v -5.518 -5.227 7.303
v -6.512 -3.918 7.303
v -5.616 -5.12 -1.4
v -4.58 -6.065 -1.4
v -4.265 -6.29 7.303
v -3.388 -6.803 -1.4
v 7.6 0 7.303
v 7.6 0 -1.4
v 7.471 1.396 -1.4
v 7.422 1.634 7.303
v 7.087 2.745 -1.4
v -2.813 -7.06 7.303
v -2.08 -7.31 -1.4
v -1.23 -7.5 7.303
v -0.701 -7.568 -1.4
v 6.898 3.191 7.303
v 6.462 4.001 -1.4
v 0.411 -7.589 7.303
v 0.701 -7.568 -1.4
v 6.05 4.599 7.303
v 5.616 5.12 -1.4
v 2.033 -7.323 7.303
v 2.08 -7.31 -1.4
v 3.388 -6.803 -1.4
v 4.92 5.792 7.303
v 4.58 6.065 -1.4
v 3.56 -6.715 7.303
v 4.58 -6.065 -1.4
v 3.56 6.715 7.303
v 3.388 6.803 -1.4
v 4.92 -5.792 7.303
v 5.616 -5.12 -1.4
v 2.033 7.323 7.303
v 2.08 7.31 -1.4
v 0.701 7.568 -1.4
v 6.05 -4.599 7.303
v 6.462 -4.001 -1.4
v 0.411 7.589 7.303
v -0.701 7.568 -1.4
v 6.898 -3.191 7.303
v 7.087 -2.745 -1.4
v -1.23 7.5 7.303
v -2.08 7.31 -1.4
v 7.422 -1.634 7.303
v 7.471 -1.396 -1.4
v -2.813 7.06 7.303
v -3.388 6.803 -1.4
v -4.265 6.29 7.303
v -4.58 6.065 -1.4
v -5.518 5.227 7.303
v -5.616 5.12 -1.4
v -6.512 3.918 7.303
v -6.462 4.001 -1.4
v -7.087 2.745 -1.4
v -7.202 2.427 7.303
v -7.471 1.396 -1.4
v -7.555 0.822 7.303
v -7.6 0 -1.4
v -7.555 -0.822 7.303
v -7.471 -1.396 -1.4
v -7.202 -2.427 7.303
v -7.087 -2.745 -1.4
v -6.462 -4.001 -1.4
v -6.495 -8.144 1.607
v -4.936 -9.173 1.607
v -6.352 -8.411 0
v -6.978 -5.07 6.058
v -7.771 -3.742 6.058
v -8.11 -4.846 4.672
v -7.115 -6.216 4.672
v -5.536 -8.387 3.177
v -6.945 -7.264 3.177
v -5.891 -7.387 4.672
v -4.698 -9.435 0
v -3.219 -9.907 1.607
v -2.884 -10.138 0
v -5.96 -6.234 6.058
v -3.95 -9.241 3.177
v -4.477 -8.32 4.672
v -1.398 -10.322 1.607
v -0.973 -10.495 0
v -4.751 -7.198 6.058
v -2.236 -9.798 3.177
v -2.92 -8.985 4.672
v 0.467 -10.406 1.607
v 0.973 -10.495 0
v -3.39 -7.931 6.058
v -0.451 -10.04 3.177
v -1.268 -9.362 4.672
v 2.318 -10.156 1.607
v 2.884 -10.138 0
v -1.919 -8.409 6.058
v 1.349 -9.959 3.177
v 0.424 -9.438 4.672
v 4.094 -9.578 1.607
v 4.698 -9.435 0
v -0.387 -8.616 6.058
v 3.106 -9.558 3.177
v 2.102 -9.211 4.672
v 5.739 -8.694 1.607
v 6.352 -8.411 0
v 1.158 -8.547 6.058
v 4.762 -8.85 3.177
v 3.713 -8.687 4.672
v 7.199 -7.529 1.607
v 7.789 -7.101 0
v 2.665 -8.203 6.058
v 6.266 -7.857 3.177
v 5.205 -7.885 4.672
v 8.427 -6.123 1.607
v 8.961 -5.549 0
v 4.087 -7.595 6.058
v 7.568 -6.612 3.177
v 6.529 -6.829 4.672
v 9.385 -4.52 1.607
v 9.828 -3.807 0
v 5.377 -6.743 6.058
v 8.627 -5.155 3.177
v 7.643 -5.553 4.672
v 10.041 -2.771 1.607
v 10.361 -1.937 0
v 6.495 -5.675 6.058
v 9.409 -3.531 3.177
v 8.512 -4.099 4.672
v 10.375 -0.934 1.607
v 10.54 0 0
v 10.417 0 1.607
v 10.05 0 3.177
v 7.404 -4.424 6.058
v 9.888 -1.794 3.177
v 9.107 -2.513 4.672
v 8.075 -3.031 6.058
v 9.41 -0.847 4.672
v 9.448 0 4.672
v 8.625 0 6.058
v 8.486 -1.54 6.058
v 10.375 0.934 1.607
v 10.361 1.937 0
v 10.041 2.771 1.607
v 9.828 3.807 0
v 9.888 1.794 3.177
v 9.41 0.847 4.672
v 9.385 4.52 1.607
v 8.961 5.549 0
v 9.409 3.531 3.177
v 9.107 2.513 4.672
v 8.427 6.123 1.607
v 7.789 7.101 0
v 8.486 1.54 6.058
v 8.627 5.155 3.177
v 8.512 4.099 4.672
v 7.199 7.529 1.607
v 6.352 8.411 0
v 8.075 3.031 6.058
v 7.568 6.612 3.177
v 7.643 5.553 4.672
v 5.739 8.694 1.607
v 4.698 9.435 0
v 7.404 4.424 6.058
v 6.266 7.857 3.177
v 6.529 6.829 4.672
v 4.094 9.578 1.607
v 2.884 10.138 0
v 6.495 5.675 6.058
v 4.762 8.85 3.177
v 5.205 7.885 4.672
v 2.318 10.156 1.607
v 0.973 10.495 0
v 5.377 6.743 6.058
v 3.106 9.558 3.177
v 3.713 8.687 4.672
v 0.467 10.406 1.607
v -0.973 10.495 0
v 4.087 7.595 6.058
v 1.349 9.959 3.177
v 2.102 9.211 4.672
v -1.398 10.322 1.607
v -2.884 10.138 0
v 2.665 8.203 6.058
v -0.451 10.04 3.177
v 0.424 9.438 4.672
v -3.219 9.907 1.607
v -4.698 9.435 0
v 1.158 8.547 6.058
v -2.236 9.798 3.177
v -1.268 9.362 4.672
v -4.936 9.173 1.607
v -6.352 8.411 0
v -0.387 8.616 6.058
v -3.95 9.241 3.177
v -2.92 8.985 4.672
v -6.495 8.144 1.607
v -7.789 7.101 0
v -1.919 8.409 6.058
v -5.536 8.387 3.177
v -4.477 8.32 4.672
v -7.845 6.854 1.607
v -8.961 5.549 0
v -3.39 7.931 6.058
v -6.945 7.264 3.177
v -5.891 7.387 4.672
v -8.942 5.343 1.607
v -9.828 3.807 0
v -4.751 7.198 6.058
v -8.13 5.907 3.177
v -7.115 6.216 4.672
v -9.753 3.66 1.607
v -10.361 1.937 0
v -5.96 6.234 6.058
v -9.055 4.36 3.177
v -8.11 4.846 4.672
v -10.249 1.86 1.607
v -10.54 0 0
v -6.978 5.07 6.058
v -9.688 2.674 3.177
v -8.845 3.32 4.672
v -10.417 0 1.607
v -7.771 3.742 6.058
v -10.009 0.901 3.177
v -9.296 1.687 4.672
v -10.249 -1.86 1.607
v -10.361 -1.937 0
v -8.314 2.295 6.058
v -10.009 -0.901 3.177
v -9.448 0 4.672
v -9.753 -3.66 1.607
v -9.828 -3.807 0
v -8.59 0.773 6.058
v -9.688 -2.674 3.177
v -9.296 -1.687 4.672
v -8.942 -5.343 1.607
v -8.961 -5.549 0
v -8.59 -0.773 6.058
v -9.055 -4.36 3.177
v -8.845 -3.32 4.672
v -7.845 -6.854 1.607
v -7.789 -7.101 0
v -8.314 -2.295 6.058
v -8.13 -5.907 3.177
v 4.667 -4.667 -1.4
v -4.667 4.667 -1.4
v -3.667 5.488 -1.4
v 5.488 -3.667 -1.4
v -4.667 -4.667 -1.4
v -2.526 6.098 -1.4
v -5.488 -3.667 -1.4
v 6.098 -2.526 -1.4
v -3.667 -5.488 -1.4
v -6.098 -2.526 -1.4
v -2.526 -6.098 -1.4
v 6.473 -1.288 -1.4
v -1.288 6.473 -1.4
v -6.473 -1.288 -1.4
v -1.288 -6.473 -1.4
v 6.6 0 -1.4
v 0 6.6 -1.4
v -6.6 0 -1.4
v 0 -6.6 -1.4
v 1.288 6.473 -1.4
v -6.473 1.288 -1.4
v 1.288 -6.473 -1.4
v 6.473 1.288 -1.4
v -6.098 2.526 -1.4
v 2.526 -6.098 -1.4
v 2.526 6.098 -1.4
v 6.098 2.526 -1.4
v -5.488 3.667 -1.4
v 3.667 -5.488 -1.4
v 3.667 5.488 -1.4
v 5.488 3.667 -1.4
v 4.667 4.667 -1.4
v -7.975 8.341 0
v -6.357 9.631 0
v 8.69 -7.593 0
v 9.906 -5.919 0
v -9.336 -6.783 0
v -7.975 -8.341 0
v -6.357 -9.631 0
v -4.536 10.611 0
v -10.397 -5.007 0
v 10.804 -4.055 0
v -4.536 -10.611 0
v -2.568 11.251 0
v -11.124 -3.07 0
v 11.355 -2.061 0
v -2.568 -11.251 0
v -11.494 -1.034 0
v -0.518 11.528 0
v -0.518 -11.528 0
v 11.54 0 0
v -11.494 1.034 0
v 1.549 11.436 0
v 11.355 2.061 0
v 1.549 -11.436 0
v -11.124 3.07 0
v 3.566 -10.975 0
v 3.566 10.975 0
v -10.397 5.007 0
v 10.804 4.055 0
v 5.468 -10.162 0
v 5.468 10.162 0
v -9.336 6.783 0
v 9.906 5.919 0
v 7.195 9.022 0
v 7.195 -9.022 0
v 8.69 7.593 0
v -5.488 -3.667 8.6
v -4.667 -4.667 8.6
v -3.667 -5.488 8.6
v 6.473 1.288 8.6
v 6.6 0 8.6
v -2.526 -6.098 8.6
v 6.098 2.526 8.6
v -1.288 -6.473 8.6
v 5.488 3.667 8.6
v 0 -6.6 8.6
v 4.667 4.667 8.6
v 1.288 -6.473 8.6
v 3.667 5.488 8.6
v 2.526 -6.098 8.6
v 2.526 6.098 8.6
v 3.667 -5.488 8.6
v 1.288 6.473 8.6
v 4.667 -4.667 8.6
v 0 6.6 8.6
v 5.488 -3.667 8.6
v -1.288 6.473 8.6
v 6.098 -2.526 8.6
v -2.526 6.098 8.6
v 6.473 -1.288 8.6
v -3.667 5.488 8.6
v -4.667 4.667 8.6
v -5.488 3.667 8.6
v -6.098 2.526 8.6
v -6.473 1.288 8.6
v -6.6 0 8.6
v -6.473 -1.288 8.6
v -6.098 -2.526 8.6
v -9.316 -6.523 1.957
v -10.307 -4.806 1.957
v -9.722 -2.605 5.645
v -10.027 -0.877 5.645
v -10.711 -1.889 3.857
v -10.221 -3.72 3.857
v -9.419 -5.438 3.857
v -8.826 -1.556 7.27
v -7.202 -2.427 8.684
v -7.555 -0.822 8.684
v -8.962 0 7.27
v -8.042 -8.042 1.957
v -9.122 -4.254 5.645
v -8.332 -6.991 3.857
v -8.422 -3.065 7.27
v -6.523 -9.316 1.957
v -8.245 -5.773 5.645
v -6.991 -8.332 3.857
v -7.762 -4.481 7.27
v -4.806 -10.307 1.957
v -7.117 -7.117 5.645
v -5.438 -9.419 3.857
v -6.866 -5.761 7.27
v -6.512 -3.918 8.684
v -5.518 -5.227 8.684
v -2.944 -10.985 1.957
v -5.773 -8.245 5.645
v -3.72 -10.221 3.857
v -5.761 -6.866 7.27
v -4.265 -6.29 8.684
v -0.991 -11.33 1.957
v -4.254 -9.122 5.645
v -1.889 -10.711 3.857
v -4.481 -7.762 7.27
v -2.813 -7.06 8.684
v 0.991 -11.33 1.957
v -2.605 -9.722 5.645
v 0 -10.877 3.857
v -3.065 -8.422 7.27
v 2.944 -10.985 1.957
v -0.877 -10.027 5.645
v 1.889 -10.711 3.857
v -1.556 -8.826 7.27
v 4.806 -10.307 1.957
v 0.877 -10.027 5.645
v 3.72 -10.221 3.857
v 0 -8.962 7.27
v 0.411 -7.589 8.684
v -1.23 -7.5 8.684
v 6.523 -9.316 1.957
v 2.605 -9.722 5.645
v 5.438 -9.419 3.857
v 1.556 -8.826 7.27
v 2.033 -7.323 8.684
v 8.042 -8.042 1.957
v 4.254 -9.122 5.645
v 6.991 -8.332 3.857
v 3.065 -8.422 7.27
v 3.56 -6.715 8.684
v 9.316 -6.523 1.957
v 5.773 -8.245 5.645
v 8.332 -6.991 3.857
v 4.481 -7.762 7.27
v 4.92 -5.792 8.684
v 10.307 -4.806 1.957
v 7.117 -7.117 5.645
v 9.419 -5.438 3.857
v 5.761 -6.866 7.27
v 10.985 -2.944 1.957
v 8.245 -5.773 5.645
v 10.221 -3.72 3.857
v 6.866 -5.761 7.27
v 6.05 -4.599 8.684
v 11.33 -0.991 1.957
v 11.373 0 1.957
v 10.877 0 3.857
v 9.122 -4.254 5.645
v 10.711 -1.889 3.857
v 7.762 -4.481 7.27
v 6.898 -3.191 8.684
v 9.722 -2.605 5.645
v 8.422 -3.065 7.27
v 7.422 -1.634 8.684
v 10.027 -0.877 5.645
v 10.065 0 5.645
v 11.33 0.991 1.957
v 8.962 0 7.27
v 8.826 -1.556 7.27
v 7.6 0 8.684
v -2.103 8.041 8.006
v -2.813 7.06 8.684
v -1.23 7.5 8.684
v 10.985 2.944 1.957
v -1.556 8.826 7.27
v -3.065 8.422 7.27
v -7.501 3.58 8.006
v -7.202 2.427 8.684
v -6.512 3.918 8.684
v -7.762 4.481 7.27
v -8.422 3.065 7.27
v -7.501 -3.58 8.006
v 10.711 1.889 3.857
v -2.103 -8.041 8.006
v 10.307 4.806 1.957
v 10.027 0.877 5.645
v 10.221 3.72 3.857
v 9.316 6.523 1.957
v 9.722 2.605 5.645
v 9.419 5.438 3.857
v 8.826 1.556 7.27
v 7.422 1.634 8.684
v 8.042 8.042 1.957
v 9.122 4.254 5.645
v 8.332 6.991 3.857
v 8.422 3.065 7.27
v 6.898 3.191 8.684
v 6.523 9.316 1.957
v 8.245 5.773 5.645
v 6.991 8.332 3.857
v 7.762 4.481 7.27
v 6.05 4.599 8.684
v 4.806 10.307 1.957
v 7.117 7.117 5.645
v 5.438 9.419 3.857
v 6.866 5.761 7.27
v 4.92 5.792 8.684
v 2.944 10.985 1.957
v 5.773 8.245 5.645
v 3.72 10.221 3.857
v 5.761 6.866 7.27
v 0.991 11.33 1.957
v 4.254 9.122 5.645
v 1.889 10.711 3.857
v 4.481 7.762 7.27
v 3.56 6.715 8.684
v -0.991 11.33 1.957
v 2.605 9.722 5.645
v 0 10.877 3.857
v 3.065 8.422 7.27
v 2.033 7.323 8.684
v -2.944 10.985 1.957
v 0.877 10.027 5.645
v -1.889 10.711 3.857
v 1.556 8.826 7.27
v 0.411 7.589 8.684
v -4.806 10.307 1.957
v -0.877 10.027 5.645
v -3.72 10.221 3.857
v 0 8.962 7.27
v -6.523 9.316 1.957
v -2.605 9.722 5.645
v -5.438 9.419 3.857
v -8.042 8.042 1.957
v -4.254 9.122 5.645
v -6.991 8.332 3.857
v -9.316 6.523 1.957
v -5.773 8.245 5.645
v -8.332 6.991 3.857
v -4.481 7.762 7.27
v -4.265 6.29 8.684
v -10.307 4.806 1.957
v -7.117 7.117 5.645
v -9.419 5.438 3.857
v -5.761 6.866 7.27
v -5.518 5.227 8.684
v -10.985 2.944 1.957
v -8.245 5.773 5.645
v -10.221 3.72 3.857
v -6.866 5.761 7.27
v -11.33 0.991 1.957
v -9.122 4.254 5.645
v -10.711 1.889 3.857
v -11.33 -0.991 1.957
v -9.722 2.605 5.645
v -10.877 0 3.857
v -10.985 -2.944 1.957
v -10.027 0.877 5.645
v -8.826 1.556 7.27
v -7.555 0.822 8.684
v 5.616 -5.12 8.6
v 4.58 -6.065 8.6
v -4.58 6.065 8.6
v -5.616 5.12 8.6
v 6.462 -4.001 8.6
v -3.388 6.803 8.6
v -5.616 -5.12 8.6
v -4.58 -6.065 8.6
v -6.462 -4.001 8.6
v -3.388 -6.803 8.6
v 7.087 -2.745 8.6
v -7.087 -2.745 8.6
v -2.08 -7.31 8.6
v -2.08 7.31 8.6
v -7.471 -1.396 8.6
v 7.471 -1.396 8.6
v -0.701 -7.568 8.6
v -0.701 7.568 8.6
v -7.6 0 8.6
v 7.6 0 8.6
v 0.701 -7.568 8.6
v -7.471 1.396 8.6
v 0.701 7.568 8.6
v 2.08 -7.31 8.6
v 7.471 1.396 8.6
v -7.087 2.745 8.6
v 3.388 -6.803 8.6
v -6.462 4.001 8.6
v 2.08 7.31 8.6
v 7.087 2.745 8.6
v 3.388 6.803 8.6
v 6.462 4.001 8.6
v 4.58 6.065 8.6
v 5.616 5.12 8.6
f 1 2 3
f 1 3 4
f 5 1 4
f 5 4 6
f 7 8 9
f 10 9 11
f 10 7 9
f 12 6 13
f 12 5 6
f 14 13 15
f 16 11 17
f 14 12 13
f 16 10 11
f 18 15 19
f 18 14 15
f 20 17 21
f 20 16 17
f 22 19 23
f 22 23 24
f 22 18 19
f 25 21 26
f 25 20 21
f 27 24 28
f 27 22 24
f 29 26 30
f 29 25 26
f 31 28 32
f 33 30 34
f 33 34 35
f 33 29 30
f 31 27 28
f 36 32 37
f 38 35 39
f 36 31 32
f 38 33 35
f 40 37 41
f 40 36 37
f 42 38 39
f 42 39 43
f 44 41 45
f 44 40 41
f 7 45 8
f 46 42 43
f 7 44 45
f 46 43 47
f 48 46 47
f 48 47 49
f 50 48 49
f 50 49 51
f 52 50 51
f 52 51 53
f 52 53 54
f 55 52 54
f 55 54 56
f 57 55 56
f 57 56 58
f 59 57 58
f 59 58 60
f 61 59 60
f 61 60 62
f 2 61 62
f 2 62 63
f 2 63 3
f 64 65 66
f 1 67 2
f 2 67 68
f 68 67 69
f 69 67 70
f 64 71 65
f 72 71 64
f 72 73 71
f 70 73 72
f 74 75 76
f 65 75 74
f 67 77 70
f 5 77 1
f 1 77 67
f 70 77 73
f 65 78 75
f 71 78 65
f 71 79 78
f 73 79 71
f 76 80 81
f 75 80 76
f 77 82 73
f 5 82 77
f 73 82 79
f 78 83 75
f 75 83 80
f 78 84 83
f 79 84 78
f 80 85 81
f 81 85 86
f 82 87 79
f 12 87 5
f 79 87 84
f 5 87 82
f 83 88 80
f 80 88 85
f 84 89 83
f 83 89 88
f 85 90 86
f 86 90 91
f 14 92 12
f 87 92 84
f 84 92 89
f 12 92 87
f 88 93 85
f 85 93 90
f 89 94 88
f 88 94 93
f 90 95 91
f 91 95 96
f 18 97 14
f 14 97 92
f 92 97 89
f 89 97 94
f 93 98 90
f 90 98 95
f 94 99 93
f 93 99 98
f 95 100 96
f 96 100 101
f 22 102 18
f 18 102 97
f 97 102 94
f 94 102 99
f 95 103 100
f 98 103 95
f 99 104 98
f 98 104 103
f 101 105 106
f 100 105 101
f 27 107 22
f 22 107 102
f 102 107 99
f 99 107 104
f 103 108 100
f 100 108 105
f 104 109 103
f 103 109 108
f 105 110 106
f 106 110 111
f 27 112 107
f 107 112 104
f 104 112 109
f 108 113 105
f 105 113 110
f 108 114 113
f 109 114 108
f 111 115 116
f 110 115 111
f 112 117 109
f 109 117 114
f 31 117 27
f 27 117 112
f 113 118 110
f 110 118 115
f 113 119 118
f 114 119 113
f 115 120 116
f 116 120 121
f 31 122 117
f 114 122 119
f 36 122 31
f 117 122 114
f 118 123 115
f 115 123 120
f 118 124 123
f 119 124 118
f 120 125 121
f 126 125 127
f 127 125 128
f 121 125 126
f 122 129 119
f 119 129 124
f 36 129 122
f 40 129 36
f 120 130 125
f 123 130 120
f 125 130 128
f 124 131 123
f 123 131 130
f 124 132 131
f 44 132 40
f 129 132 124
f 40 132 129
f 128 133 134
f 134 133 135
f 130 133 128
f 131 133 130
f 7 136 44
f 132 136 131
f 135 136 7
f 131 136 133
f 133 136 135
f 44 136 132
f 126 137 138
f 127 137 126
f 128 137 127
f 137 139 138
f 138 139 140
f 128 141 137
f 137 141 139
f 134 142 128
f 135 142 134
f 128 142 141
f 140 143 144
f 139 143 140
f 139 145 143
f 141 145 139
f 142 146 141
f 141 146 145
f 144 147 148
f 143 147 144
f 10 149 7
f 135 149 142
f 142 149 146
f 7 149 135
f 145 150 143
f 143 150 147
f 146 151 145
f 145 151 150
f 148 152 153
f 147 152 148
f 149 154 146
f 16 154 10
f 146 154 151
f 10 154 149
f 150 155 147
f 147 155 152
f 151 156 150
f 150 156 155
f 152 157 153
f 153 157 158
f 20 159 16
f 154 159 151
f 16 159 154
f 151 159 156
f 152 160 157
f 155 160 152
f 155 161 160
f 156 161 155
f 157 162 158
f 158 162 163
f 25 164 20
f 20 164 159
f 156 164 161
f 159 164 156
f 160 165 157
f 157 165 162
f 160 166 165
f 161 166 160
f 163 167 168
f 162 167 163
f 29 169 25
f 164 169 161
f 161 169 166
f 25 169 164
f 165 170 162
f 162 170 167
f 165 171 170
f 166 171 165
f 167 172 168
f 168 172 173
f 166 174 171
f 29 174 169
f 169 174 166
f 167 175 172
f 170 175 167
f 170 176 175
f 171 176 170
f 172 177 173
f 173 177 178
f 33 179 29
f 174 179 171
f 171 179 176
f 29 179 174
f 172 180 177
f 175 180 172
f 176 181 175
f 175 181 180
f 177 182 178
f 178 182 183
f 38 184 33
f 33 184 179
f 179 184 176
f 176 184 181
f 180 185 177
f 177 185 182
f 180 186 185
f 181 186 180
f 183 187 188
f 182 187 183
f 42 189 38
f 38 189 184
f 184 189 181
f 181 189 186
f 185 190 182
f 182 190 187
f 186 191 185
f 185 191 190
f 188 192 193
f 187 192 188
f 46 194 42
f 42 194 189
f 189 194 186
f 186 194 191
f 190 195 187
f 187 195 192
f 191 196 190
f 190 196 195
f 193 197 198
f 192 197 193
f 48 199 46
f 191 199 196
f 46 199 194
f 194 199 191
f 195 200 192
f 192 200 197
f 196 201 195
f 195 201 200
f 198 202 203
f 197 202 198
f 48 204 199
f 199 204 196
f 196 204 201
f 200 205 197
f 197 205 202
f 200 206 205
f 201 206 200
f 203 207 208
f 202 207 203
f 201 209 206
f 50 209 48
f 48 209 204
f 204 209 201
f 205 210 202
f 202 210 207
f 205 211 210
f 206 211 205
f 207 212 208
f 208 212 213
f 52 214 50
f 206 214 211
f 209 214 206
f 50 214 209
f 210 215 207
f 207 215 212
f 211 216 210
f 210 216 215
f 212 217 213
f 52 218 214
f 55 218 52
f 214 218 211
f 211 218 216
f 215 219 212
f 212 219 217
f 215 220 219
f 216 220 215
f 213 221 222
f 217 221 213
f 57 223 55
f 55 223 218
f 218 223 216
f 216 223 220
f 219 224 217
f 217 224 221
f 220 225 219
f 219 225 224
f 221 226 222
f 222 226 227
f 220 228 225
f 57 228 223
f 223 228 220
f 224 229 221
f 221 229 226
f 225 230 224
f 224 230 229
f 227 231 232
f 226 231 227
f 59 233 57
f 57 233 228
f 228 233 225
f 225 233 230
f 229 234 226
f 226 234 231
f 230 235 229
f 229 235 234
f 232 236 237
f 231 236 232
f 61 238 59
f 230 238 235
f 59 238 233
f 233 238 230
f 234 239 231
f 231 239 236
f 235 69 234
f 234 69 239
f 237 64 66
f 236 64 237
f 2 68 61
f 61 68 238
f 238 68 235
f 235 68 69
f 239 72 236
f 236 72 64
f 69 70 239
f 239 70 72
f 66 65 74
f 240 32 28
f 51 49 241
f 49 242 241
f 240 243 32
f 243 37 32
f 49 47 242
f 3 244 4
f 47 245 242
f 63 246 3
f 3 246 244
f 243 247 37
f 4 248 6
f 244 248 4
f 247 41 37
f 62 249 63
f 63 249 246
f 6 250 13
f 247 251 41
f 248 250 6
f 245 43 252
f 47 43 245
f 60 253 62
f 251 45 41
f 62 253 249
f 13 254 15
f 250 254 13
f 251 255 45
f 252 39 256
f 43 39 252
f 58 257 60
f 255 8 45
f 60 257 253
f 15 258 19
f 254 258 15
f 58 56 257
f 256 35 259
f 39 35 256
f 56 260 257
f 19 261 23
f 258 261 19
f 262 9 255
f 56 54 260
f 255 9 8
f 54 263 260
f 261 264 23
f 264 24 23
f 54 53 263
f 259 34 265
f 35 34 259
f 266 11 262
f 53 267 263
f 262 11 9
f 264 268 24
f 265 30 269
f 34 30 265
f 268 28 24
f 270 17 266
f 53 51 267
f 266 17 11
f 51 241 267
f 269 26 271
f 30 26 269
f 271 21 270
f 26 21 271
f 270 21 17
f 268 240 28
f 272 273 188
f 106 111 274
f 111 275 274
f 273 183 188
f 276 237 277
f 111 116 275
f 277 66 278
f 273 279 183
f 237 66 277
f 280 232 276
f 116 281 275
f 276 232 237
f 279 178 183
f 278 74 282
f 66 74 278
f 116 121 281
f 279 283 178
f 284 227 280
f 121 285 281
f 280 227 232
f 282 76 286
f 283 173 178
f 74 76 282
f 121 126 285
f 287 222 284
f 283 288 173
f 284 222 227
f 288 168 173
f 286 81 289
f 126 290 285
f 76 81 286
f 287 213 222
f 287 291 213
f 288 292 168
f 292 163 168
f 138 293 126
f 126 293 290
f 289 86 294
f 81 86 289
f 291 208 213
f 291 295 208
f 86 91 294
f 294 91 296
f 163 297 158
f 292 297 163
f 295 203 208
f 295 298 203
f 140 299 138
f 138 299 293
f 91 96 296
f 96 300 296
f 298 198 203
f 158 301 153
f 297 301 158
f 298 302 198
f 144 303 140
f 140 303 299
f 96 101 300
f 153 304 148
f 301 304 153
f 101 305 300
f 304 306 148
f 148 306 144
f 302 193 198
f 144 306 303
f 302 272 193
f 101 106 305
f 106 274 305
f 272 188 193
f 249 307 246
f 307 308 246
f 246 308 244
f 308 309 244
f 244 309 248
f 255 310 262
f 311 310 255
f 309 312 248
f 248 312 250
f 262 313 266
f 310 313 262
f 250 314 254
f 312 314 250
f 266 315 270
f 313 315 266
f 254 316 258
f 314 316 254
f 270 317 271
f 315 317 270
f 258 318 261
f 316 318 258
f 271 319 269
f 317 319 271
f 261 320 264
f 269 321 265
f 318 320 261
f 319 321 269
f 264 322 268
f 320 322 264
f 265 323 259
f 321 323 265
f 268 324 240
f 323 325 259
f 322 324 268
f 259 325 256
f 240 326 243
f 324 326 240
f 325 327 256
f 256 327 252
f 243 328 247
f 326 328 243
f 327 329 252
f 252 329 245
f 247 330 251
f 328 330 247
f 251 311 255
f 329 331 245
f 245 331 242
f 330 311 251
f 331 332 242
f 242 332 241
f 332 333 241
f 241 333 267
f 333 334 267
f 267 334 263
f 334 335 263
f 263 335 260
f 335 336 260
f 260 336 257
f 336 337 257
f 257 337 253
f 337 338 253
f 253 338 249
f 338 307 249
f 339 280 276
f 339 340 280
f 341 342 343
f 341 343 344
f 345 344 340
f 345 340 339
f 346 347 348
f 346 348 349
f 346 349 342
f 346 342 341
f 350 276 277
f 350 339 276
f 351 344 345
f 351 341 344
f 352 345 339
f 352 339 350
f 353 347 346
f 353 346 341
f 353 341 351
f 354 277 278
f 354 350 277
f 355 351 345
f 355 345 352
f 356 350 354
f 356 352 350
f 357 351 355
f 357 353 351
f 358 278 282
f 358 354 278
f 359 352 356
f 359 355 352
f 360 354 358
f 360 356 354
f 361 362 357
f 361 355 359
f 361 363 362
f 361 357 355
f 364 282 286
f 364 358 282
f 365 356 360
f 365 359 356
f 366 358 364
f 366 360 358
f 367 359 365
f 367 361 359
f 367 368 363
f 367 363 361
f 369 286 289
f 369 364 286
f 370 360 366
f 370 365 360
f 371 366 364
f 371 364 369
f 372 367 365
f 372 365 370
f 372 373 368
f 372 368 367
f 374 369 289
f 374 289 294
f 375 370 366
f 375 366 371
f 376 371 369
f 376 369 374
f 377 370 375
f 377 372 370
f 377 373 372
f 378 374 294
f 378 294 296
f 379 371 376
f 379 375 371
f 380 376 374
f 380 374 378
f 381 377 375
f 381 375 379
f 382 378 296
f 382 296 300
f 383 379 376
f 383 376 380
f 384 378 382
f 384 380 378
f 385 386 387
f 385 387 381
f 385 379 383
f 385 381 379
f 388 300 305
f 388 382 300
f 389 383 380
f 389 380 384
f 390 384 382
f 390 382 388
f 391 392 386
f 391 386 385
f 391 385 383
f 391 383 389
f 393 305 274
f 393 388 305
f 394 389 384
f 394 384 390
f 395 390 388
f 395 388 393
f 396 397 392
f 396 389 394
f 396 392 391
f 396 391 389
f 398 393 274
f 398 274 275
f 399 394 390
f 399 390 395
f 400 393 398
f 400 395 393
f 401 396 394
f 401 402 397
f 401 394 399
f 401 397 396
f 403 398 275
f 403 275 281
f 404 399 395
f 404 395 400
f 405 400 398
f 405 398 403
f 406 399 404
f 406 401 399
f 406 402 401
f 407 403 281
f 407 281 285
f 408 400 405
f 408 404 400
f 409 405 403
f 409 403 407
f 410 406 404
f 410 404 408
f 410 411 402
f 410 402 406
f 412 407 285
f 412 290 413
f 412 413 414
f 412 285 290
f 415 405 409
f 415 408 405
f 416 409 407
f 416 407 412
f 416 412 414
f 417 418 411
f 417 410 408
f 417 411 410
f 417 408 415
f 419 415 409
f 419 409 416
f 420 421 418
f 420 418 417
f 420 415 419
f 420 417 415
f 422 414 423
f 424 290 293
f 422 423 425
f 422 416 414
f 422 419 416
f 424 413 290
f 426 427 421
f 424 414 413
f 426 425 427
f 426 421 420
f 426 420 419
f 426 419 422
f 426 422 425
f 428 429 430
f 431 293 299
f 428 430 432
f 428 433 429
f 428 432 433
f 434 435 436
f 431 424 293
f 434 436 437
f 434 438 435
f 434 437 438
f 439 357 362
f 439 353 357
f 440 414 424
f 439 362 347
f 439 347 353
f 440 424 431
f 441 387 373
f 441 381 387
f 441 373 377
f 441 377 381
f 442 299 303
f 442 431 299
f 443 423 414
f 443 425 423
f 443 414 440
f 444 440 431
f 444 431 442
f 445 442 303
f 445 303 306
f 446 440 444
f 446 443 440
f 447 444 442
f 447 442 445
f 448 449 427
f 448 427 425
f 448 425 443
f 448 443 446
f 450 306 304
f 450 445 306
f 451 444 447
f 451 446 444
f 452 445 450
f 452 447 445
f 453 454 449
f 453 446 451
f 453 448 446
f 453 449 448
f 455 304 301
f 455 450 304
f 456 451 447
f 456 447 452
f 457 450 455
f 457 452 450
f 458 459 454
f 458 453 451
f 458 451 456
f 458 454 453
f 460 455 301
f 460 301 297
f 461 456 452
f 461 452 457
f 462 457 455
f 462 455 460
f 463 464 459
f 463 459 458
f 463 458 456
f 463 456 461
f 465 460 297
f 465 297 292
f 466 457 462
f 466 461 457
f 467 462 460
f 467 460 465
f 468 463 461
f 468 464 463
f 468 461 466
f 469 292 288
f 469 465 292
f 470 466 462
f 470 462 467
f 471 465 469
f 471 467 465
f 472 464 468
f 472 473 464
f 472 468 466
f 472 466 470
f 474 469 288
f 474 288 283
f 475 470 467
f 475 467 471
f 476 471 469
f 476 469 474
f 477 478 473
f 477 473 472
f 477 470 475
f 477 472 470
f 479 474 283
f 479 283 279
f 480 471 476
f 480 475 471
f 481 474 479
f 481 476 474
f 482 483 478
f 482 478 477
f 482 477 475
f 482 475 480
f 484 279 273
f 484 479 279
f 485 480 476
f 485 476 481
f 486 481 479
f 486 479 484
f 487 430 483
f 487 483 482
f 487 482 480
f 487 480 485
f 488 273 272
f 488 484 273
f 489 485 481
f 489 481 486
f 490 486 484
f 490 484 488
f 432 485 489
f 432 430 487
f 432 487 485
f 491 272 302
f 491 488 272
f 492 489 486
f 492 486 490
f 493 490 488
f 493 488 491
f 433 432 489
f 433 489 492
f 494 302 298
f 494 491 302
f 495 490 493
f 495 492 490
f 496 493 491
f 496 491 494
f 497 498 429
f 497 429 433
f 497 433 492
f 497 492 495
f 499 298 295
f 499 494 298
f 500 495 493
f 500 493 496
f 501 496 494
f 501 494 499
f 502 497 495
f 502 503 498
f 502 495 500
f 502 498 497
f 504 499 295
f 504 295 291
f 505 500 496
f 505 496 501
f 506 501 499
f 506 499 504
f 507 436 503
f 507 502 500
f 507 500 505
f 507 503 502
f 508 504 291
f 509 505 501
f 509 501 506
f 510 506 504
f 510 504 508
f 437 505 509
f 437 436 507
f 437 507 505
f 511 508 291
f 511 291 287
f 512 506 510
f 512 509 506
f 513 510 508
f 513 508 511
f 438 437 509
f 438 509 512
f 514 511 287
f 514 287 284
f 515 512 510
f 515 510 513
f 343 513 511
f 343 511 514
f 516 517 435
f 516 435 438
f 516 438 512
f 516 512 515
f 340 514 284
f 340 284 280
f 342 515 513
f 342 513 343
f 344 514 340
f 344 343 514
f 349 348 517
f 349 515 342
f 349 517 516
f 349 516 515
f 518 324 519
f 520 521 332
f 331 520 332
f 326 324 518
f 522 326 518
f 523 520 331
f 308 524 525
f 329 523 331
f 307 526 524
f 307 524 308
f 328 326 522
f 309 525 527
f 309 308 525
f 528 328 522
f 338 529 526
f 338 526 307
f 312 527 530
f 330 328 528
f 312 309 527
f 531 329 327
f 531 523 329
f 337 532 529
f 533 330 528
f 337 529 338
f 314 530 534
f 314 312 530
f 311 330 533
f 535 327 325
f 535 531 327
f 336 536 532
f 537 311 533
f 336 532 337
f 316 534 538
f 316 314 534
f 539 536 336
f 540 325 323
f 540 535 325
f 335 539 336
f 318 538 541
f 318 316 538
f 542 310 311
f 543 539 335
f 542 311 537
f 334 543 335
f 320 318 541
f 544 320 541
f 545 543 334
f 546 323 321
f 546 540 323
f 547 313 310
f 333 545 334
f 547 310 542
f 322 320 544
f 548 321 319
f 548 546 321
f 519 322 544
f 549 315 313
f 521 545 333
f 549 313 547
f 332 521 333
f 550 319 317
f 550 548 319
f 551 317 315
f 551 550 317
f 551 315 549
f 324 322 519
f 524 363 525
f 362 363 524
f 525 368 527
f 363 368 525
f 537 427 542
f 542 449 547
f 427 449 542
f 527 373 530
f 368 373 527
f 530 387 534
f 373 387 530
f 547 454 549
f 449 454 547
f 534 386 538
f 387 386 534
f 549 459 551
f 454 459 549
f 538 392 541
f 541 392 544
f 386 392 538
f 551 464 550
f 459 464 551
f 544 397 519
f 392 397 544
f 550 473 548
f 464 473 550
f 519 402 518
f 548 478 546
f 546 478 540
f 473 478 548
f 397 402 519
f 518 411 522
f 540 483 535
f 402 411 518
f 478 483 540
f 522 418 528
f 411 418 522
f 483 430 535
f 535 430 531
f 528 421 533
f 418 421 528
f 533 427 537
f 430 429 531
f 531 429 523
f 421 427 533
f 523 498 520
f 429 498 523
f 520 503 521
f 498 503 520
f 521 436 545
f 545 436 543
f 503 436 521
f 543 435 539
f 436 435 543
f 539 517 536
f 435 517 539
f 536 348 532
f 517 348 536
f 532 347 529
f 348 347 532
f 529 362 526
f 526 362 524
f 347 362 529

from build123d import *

# Parameters (mm, degrees)
CYLINDER_R        = 7.6
CYLINDER_DEPTH    = 10
CYLINDER002_R     = 6.6
CYLINDER002_DEPTH = 10
CYLINDER001_R     = 7.6
CYLINDER001_DEPTH = 10


with BuildPart() as esfera001:
    # Sphere001 → Sphere001 (revolve)
    with BuildSketch(Plane.XZ):
        with BuildLine():
            ThreePointArc((0, -10.54), (10.54, 0), (0, 10.54))
            Line((0, 10.54), (0, -10.54))
        make_face()
    revolve(axis=Axis((0, 0, 0), (0, 0, 1)))


with BuildPart() as cilindroparacorte:
    # Cylinder → Cylinder (new body)
    with BuildSketch(Plane.XY.offset(2)):
        Circle(CYLINDER_R)
    extrude(amount=CYLINDER_DEPTH)


with BuildPart() as cut002:
    # Sphere → Sphere (revolve)
    with BuildSketch(Plane.XZ):
        with BuildLine():
            ThreePointArc((11.54, 0), (8.160012, 8.160012), (0, 11.54))
            Line((0, 11.54), (0, 0))
            Line((0, 0), (11.54, 0))
        make_face()
    revolve(axis=Axis((0, 0, 0), (0, 0, 1)))

    # Cut001: cut CilindroParaCorte
    add(cilindroparacorte.part, mode=Mode.SUBTRACT)

    # Cut002: cut Esfera001
    add(esfera001.part, mode=Mode.SUBTRACT)


with BuildPart() as cilindroguia002:
    # Cylinder002 → Cylinder002 (new body)
    with BuildSketch(Plane.XY.offset(2)):
        Circle(CYLINDER002_R)
    extrude(amount=CYLINDER002_DEPTH)


with BuildPart() as fusion:
    # Cylinder001 → Cylinder001 (new body)
    with BuildSketch(Plane.XY.offset(2)):
        Circle(CYLINDER001_R)
    extrude(amount=CYLINDER001_DEPTH)

    # Cut: cut CilindroGuia002
    add(cilindroguia002.part, mode=Mode.SUBTRACT)


with BuildPart() as fusion_1:
    # Cut placement: moved
    add(fusion.part.moved(Location((0, 0, -3.4))))

    # Fusion: union Cut002
    add(cut002.part)


solid = fusion_1.part
